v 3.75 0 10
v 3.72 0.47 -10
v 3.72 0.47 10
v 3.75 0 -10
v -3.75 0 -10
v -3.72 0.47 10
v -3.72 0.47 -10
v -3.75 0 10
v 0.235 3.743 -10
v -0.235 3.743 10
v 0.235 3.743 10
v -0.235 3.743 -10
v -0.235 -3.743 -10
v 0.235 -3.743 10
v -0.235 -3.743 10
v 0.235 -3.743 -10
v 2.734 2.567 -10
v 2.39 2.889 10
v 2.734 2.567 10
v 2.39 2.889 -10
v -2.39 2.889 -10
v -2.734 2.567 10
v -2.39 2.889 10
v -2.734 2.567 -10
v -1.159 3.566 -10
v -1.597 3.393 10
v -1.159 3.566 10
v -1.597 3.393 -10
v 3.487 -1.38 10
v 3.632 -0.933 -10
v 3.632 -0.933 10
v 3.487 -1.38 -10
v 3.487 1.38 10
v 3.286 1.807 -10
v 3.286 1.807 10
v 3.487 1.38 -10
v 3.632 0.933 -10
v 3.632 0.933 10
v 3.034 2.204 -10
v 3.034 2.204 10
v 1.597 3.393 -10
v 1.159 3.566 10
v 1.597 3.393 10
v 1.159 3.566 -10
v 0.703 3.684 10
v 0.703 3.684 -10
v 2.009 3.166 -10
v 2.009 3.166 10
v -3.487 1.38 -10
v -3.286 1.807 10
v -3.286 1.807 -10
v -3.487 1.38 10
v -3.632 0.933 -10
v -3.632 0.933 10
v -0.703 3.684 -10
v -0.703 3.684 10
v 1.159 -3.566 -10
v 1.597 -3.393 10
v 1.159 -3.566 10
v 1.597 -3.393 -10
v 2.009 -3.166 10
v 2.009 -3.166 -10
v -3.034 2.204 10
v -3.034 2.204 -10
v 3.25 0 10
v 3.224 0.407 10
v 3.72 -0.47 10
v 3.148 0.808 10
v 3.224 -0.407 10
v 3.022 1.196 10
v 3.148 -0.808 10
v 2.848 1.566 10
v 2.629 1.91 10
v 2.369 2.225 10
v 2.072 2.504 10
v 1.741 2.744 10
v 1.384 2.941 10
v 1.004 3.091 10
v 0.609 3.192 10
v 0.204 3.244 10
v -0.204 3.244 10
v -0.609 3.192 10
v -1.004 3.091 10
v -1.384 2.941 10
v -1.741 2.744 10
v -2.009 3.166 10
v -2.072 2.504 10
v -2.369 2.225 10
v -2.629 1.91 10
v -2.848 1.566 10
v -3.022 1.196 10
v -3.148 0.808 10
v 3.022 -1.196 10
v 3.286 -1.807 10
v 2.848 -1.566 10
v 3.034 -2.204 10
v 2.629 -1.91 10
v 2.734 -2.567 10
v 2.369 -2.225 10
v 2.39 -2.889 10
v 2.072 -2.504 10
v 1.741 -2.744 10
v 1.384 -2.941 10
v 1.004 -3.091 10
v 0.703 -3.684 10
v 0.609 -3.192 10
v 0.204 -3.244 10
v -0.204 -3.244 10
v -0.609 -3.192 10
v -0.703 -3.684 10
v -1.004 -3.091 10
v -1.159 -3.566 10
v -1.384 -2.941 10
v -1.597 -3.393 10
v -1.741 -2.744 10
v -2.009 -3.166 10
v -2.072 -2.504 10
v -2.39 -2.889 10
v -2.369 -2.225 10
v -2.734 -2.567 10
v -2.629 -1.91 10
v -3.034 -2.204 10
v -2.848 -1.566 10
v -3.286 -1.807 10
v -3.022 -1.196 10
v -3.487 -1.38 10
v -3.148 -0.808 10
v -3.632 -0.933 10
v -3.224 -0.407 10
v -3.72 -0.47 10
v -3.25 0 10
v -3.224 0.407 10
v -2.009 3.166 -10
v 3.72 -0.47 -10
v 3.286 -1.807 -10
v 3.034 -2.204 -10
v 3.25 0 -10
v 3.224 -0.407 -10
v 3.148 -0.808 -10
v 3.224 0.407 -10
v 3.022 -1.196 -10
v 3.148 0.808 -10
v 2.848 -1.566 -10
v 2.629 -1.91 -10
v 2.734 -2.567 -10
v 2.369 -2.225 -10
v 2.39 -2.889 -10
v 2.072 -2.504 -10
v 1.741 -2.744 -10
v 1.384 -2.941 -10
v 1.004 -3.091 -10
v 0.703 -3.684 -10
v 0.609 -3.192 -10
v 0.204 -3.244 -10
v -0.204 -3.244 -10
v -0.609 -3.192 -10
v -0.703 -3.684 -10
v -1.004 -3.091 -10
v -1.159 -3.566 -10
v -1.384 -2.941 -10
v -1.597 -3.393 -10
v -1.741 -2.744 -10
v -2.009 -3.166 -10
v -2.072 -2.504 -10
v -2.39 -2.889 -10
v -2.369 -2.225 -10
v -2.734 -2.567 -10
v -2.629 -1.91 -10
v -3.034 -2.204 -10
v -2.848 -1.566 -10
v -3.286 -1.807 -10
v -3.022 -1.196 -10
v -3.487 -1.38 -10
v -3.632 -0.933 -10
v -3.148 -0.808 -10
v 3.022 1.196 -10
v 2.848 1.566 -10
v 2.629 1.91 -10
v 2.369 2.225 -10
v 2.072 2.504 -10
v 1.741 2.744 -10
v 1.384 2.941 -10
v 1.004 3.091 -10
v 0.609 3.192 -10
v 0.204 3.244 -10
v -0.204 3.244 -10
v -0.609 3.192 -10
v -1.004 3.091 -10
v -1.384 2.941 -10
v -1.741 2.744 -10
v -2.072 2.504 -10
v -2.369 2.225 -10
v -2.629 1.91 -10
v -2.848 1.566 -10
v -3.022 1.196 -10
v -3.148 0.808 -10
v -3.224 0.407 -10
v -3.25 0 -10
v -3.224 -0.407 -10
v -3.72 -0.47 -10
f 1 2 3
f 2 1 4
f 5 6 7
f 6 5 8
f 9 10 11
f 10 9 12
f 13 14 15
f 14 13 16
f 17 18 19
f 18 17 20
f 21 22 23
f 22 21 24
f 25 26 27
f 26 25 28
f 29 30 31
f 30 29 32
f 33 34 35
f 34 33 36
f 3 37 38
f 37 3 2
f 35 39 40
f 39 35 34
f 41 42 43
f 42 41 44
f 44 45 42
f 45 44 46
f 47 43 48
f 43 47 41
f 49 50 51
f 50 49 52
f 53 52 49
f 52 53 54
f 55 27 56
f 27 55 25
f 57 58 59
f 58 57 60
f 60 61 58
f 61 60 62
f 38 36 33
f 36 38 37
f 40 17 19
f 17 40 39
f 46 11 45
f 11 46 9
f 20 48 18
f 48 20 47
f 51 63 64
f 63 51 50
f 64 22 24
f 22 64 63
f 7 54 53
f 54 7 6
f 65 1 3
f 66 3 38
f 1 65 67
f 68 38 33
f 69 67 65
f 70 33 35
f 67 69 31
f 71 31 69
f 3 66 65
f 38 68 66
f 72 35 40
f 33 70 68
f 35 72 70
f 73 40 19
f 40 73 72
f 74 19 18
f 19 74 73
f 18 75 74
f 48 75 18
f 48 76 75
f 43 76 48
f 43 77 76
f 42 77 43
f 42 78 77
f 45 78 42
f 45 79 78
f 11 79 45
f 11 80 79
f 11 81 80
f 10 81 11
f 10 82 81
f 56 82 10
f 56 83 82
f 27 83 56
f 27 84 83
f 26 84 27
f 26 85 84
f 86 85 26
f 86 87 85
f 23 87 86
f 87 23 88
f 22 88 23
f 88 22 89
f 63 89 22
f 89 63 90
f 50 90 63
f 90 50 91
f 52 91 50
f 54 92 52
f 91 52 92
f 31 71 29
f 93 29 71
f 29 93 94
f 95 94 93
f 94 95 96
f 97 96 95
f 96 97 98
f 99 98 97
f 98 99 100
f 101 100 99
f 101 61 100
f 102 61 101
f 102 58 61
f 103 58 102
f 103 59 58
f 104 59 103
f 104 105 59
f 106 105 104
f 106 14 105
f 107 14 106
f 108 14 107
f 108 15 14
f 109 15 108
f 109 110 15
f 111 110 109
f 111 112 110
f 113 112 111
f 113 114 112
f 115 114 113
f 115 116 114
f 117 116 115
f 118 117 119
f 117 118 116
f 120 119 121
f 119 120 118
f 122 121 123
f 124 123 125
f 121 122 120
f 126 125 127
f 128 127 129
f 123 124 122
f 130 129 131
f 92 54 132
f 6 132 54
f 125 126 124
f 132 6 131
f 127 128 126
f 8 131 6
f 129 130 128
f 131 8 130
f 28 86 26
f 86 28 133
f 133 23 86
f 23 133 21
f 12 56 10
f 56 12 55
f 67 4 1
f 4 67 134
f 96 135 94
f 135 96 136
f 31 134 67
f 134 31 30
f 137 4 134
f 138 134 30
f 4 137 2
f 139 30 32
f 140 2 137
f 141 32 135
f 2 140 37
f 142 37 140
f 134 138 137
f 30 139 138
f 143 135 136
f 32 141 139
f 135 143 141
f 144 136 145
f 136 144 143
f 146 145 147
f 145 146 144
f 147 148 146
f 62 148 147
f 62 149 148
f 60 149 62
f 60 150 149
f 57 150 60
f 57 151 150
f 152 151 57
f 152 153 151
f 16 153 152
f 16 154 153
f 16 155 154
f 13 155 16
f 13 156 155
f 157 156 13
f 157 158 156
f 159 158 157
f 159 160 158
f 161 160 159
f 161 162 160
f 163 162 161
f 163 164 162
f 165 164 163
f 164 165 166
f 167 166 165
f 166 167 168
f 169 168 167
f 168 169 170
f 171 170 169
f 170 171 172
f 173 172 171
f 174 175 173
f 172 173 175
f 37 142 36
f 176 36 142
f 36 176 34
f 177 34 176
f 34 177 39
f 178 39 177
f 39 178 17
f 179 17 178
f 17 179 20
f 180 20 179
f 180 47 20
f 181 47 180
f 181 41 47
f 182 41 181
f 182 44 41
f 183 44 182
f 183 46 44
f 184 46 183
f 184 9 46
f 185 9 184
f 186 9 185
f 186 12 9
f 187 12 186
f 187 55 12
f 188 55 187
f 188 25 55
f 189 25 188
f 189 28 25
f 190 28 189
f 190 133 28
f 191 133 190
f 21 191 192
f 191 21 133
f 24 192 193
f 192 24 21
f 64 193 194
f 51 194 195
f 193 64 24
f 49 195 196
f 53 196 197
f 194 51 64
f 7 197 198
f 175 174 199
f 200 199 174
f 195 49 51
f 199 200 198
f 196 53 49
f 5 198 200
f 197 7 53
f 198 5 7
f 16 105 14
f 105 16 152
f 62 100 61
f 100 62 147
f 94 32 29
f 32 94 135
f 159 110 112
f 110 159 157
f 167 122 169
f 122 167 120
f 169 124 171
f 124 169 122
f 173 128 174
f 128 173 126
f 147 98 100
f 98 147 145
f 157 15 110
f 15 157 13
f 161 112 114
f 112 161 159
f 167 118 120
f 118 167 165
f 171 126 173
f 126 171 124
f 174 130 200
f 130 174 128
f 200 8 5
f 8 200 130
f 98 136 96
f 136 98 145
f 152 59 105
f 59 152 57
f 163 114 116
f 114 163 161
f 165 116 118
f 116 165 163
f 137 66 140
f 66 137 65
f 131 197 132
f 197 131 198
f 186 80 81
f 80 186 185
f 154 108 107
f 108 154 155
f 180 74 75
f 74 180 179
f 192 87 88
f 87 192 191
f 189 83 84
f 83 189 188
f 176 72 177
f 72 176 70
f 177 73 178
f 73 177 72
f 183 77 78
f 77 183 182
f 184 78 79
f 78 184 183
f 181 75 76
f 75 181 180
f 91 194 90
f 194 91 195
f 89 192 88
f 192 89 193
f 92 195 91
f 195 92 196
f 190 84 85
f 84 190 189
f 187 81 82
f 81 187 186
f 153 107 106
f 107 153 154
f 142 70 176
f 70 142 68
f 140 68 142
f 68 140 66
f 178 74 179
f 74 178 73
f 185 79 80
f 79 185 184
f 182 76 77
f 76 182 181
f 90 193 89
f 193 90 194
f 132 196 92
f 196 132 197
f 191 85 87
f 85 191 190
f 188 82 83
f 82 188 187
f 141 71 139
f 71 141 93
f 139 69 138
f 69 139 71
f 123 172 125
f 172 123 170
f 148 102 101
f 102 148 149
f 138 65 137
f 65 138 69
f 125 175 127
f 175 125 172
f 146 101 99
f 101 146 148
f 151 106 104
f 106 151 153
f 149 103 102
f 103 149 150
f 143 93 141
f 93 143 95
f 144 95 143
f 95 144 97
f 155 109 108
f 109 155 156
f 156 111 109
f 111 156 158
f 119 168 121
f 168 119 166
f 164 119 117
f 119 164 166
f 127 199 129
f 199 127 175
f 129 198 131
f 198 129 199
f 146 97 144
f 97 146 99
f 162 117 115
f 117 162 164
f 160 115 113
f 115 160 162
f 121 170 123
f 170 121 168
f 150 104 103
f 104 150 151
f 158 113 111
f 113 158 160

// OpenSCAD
$fn = 50;


difference() {
	union() {
		translate(v = [0, 0, -10.0000000000]) {
			cylinder(h = 20, r = 3.7500000000);
		}
	}
	union() {
		translate(v = [0, 0, -100.0000000000]) {
			cylinder(h = 200, r = 3.2500000000);
		}
	}
}
